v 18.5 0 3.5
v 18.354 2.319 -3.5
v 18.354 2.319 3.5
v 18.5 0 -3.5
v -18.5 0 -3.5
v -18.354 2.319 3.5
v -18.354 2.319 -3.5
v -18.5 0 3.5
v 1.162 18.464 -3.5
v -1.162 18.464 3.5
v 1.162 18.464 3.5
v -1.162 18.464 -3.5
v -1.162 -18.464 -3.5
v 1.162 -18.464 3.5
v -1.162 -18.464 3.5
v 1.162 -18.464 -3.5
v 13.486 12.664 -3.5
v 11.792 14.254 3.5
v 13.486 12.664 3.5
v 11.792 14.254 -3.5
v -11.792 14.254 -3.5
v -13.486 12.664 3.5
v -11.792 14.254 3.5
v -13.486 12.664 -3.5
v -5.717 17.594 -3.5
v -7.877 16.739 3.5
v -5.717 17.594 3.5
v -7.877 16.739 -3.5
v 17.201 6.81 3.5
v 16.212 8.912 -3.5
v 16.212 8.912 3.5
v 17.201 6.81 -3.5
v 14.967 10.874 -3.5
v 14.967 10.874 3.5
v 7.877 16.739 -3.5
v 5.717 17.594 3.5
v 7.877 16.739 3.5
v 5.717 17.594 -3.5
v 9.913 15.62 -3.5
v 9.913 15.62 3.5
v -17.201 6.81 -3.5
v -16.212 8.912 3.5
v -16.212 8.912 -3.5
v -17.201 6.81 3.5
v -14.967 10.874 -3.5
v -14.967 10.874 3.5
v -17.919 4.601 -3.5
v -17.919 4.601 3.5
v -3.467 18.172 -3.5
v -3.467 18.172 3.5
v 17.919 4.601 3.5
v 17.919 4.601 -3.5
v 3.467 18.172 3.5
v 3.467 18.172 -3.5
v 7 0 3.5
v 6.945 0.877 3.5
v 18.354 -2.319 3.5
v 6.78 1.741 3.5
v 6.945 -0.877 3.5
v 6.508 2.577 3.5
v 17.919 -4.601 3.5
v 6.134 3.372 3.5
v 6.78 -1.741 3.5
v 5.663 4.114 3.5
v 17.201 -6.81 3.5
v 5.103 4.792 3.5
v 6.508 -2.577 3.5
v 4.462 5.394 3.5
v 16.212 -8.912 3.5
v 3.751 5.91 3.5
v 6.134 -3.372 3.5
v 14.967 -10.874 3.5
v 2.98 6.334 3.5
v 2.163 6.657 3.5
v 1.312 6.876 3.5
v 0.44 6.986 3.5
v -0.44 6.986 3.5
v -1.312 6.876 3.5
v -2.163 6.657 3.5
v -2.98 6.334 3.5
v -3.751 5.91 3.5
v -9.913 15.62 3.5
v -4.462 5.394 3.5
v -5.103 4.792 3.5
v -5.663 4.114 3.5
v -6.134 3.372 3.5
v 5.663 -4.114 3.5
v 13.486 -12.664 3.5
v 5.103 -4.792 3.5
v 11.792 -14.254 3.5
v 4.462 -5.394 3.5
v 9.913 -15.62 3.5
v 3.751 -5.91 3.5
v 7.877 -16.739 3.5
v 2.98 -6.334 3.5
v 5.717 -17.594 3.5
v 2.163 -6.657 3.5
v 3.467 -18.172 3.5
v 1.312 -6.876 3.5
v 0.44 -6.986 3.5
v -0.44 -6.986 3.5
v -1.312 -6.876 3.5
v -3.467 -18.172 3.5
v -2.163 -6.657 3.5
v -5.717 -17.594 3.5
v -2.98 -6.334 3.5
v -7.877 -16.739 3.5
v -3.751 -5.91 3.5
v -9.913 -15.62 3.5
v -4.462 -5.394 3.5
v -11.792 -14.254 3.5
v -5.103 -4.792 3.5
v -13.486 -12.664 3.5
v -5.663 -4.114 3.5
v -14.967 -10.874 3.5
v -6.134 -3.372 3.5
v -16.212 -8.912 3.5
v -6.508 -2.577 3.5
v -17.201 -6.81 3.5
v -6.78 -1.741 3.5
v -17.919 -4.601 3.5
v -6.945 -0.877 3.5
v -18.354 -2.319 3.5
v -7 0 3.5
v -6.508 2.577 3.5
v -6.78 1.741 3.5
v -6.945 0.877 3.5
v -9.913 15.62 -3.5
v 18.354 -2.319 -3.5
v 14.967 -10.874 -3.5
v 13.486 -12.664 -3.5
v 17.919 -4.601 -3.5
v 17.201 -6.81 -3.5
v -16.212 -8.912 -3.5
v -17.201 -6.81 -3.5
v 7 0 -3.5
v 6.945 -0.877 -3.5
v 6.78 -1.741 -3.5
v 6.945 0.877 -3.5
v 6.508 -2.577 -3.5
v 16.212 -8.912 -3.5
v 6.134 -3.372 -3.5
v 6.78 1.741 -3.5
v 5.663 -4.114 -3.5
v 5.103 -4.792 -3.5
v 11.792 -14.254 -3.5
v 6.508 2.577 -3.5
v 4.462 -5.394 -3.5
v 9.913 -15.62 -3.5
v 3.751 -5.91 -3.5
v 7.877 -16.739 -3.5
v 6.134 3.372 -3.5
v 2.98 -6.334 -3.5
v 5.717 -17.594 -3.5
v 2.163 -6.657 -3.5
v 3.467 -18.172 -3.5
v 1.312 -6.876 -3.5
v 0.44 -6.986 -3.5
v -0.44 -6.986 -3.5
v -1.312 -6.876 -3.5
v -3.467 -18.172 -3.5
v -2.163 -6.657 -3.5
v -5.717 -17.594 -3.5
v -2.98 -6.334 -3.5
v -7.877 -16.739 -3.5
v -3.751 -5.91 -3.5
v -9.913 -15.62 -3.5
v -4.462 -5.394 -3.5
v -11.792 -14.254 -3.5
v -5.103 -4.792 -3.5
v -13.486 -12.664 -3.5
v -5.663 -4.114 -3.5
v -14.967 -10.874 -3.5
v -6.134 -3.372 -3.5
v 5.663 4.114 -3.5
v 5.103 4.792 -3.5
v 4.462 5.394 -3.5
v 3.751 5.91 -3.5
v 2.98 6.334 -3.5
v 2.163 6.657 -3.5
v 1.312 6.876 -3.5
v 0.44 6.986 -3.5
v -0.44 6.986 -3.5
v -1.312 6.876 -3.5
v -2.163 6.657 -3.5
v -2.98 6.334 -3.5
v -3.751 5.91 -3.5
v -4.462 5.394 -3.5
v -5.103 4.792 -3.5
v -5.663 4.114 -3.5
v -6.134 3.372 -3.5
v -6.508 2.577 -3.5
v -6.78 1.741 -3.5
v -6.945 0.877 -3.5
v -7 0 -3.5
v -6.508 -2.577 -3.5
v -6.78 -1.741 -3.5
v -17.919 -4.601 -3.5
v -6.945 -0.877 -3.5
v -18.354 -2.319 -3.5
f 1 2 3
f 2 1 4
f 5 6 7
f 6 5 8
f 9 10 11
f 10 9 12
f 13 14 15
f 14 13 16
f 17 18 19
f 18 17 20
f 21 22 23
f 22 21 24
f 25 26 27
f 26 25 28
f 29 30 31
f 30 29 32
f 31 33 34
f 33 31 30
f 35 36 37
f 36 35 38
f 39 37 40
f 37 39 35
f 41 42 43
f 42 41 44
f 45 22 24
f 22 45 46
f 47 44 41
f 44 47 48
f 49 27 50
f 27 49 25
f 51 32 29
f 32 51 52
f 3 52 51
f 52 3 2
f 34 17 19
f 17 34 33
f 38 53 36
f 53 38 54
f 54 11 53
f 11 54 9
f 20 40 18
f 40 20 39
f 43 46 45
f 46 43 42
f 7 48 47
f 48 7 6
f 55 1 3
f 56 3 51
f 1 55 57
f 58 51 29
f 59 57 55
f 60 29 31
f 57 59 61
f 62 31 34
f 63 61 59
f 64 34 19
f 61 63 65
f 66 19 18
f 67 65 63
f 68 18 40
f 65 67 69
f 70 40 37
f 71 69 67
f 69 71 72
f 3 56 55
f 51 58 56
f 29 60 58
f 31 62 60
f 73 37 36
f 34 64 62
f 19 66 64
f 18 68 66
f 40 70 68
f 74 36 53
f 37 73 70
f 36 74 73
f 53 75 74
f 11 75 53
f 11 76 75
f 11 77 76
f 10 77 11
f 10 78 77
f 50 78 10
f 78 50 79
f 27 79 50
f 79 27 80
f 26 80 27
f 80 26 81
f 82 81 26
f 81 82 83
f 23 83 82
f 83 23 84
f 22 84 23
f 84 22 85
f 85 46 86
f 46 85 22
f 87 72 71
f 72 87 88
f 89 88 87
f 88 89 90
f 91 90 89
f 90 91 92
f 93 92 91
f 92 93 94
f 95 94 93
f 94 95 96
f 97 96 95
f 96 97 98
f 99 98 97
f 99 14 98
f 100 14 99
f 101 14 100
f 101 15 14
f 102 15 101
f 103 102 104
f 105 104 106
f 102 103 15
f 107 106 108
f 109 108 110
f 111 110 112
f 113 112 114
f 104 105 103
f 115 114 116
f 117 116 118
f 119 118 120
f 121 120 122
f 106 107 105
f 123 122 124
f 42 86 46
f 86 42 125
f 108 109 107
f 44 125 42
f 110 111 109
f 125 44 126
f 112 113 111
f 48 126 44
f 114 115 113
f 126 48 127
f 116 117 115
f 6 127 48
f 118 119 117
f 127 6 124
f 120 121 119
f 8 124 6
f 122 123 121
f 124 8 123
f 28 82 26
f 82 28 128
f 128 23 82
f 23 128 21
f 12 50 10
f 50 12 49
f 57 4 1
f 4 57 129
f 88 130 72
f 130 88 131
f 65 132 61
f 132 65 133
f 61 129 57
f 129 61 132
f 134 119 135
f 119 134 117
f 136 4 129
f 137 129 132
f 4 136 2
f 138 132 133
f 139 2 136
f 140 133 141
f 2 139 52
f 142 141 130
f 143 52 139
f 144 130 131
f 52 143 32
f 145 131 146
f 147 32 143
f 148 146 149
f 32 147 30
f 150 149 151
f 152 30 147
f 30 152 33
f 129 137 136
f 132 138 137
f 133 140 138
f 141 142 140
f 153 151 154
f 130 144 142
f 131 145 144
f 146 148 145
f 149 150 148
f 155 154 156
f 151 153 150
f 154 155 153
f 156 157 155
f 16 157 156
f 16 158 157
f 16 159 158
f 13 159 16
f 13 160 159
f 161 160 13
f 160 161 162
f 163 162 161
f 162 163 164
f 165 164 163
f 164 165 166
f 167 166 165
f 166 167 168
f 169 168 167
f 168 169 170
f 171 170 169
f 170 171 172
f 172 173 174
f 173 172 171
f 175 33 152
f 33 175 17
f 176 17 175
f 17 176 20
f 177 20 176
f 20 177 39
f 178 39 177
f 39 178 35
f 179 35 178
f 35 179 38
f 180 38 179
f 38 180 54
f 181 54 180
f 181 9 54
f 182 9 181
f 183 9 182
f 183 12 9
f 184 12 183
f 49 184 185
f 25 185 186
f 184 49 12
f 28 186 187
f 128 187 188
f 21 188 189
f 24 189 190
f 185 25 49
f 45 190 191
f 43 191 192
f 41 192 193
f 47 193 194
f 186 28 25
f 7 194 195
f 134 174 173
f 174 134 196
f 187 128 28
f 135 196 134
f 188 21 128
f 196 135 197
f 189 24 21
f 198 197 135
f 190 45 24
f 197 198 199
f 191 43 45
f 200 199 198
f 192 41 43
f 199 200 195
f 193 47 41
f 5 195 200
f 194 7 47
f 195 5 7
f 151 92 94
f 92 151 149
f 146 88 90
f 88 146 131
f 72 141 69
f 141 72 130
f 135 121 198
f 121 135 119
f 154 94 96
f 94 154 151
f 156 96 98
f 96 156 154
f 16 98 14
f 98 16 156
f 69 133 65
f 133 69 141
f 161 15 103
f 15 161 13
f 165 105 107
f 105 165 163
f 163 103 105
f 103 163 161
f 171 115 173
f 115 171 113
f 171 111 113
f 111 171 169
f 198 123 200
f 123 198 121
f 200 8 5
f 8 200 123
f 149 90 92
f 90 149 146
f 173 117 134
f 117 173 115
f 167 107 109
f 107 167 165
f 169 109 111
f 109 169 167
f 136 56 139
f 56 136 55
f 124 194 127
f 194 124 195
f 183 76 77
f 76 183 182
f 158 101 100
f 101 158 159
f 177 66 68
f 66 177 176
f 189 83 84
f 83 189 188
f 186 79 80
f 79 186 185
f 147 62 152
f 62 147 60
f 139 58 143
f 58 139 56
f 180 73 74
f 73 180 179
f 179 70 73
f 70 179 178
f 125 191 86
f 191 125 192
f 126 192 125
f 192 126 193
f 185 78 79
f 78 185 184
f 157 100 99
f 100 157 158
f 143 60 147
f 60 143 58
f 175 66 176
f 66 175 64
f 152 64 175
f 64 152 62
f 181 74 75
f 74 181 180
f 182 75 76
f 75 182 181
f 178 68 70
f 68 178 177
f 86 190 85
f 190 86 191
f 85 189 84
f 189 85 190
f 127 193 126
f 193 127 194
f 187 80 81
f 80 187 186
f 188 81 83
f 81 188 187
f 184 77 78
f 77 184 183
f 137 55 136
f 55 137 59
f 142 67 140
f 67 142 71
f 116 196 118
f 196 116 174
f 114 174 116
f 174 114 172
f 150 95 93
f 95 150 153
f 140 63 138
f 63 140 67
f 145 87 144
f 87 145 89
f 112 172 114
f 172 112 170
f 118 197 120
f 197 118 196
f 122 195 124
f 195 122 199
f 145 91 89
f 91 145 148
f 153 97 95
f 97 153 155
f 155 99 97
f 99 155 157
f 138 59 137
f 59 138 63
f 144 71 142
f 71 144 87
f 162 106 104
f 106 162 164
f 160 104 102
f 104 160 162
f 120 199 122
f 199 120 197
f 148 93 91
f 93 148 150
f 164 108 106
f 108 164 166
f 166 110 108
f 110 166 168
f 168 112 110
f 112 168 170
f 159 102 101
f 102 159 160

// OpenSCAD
$fn = 50;


difference() {
	union() {
		translate(v = [0, 0, -3.5000000000]) {
			cylinder(h = 7, r = 18.5000000000);
		}
	}
	union() {
		translate(v = [0, 0, -100.0000000000]) {
			cylinder(h = 200, r = 7);
		}
	}
}
